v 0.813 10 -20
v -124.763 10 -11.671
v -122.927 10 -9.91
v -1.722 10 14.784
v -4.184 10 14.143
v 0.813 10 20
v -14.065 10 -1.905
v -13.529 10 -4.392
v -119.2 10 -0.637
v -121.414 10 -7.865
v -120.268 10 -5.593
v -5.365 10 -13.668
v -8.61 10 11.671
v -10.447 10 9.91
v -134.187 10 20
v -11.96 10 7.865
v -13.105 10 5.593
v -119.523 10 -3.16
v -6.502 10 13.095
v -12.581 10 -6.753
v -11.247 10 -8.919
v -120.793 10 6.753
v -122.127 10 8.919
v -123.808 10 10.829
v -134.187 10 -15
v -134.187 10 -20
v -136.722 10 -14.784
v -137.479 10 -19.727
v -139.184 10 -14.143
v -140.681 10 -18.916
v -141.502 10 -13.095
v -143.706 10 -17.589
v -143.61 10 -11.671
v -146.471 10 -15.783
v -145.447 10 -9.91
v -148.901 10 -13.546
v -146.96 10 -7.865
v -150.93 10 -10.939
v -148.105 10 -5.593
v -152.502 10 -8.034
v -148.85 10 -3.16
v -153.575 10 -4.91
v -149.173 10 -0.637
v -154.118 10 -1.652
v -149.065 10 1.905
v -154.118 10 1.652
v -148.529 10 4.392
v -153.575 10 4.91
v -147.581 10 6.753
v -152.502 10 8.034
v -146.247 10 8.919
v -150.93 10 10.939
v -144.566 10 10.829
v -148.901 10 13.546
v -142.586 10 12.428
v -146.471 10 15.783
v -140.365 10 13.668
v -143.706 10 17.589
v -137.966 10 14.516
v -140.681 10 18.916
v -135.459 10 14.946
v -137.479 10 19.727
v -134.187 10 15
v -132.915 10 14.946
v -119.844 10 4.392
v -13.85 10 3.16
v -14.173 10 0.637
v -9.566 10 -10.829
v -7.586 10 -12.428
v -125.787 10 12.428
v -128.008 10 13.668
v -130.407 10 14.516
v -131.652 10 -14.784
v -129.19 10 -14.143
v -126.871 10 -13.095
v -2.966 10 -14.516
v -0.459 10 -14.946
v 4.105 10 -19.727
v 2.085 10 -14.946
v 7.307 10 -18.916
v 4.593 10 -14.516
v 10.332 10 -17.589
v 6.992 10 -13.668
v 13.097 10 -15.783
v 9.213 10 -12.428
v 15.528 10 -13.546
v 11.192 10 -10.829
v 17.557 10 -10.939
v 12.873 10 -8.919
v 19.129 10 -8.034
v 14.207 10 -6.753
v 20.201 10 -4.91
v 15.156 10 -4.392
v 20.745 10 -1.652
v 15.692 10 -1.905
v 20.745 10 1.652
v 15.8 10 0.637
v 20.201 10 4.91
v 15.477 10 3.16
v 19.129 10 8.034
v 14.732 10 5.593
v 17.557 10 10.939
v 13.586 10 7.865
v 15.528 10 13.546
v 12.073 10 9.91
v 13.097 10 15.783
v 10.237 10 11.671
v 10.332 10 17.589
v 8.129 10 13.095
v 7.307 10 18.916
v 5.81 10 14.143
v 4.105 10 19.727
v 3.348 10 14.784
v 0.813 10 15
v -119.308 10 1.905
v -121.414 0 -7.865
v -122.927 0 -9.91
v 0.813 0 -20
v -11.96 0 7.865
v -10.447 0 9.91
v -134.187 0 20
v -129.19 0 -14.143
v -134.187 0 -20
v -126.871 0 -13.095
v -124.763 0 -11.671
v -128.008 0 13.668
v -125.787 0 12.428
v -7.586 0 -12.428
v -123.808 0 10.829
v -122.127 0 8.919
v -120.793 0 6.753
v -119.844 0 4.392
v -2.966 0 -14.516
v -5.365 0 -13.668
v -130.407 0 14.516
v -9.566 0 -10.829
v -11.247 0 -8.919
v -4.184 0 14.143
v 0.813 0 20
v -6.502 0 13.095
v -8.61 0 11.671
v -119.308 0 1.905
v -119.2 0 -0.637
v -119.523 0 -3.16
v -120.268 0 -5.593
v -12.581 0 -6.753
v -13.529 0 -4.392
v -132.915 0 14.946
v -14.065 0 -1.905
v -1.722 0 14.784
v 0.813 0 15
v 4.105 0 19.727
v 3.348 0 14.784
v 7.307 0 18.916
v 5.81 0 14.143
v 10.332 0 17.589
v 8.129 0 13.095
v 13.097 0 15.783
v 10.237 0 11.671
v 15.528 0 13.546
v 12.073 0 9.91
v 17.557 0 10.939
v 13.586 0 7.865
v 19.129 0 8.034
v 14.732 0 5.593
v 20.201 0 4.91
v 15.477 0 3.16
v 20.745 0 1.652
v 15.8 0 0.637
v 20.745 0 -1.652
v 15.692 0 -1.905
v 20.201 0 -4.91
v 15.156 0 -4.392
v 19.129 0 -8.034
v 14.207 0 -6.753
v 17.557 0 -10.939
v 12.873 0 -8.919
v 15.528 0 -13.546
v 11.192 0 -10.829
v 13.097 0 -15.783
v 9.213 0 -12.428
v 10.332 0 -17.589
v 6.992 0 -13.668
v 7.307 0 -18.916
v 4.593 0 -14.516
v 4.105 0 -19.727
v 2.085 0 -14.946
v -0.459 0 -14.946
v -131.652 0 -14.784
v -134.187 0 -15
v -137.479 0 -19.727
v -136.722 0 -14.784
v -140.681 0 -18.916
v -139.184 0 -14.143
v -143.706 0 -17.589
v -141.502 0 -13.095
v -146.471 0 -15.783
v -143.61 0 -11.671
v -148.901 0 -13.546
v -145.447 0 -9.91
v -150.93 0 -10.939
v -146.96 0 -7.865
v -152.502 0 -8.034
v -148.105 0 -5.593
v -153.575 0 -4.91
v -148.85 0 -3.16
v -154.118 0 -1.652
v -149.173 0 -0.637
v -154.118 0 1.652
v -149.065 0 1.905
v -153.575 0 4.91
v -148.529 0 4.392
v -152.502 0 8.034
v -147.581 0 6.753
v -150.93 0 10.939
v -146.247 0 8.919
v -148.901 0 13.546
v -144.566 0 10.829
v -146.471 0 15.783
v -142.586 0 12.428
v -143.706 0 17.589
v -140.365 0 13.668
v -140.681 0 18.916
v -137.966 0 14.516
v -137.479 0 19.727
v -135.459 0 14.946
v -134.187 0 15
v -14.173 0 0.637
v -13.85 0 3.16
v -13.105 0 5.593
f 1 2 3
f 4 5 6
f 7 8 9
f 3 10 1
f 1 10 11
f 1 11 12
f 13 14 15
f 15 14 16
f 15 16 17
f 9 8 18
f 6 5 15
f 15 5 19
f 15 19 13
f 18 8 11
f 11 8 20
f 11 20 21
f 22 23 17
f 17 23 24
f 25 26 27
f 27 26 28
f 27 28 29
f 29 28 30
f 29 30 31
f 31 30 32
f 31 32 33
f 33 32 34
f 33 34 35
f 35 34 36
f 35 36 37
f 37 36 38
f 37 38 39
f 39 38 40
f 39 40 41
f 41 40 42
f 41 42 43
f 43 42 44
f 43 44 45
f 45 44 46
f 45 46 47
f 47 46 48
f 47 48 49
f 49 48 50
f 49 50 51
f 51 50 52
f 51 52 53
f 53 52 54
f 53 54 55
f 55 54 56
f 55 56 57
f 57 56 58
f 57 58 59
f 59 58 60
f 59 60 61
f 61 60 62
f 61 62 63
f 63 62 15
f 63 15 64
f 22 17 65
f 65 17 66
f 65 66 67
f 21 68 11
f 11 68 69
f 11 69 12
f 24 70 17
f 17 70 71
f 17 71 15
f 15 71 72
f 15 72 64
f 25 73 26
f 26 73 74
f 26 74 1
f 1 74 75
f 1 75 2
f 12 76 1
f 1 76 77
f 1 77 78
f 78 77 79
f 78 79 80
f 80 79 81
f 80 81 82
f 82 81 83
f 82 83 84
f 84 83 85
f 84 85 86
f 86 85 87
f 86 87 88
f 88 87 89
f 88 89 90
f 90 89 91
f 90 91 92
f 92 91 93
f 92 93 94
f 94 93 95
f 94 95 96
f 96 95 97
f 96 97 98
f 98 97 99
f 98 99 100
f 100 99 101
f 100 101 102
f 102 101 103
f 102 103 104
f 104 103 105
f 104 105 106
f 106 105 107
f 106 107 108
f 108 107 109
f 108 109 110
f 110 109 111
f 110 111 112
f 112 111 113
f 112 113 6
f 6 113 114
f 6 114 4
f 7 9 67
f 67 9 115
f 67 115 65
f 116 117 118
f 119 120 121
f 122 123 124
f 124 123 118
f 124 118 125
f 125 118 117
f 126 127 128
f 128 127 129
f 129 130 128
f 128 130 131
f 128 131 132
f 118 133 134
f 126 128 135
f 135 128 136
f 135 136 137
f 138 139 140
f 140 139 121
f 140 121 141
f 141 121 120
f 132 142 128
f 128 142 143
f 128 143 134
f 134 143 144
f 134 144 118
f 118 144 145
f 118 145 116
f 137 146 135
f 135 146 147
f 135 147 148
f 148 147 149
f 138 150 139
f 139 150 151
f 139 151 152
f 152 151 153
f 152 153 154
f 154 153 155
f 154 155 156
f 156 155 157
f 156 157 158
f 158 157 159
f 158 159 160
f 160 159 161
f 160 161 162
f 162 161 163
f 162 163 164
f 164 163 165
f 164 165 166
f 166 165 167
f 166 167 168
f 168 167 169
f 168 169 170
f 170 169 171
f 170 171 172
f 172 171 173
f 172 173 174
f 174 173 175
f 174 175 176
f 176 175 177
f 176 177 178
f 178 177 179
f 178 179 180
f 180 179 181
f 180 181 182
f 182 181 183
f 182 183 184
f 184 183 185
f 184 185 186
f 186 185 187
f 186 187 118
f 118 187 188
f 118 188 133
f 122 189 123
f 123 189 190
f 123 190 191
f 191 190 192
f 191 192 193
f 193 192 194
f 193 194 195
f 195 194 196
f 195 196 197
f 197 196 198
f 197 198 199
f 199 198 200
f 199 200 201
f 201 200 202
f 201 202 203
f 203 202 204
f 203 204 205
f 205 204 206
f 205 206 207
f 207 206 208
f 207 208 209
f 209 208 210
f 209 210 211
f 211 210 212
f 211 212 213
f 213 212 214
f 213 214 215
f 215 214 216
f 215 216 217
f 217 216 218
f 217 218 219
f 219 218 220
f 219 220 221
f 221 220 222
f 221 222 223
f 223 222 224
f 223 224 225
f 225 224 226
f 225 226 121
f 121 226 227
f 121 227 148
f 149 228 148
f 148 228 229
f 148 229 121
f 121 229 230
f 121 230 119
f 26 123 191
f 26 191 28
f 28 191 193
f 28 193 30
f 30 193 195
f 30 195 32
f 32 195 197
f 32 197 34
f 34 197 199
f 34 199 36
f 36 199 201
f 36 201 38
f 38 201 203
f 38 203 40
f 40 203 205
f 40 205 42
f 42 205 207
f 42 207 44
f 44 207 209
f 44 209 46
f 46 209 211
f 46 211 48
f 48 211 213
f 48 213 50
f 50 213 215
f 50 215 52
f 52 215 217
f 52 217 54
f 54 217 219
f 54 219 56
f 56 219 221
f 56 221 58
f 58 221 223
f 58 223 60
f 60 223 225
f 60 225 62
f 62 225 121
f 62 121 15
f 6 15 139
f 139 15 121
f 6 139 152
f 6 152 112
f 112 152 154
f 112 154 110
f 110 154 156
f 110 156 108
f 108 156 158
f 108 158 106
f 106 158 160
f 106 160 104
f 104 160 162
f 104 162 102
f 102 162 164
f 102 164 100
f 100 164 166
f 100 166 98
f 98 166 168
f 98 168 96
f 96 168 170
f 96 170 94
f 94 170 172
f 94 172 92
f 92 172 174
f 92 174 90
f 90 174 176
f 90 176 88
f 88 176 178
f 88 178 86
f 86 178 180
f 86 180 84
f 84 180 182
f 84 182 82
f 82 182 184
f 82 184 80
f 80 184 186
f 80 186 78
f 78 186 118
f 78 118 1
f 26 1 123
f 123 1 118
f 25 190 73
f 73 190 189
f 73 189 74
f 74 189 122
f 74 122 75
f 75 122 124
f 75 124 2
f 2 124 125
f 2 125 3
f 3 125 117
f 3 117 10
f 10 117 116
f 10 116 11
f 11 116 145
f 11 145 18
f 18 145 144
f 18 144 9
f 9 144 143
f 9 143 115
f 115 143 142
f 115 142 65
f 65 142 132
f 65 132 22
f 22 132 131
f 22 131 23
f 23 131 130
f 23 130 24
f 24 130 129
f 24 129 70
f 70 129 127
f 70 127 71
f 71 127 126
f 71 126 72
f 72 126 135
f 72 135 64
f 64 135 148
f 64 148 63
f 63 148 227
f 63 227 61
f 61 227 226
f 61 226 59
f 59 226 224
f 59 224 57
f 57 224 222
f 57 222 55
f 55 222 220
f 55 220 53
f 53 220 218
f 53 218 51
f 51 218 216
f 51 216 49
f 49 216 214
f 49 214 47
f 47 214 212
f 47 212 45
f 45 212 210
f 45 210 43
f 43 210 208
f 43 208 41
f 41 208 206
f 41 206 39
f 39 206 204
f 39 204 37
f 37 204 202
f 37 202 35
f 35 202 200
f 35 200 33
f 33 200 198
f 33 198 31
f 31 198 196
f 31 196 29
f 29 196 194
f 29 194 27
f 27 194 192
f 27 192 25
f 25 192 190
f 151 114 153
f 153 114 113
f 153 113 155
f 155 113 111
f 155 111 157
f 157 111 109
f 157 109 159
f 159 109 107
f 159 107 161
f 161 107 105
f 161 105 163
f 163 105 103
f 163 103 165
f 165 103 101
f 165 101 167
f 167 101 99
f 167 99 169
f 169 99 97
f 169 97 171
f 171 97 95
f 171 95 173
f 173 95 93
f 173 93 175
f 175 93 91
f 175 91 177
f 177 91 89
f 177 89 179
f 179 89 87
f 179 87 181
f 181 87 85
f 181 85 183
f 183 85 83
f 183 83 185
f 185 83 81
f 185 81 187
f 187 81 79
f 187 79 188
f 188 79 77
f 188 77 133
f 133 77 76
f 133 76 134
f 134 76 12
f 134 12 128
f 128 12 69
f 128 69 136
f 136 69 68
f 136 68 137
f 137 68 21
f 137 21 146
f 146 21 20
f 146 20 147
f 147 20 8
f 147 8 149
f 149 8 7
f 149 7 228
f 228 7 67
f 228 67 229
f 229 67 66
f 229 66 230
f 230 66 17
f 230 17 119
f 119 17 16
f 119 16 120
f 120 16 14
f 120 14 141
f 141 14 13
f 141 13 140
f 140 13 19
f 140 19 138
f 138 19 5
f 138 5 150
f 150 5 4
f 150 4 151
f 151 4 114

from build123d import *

# Parameters (mm, degrees)
SKETCH1_R           = 15
BOSS_EXTRUDE1_DEPTH = 10
SKETCH2_R           = 15
CUT_EXTRUDE1_DEPTH  = 10


with BuildPart() as part:
    # Sketch1 → Boss-Extrude1 (new body)
    with BuildSketch(Plane(origin=(0, 0, 0), x_dir=(1, 0, 0), z_dir=(0, 1, 0))):
        with BuildLine():
            Line((-134.186746988, 20), (0.813253012, 20))
            ThreePointArc((0.813253012, 20), (20.813253012, 0), (0.813253012, -20))
            Line((0.813253012, -20), (-134.186746988, -20))
            ThreePointArc((-134.186746988, -20), (-154.186746988, 0), (-134.186746988, 20))
        make_face()
        with Locations(Location((-134.186746988, 0, 0), (0, 0, 270))):
            Circle(SKETCH1_R, mode=Mode.SUBTRACT)
    extrude(amount=BOSS_EXTRUDE1_DEPTH)

    # Sketch2 → Cut-Extrude1 (cut)
    with BuildSketch(Plane(origin=(0, 10, 0), x_dir=(1, 0, 0), z_dir=(0, 1, 0))):
        with Locations(Location((0.813253012, 0, 0), (0, 0, 270))):
            Circle(SKETCH2_R)
    extrude(amount=-CUT_EXTRUDE1_DEPTH, mode=Mode.SUBTRACT)


solid = part.part
